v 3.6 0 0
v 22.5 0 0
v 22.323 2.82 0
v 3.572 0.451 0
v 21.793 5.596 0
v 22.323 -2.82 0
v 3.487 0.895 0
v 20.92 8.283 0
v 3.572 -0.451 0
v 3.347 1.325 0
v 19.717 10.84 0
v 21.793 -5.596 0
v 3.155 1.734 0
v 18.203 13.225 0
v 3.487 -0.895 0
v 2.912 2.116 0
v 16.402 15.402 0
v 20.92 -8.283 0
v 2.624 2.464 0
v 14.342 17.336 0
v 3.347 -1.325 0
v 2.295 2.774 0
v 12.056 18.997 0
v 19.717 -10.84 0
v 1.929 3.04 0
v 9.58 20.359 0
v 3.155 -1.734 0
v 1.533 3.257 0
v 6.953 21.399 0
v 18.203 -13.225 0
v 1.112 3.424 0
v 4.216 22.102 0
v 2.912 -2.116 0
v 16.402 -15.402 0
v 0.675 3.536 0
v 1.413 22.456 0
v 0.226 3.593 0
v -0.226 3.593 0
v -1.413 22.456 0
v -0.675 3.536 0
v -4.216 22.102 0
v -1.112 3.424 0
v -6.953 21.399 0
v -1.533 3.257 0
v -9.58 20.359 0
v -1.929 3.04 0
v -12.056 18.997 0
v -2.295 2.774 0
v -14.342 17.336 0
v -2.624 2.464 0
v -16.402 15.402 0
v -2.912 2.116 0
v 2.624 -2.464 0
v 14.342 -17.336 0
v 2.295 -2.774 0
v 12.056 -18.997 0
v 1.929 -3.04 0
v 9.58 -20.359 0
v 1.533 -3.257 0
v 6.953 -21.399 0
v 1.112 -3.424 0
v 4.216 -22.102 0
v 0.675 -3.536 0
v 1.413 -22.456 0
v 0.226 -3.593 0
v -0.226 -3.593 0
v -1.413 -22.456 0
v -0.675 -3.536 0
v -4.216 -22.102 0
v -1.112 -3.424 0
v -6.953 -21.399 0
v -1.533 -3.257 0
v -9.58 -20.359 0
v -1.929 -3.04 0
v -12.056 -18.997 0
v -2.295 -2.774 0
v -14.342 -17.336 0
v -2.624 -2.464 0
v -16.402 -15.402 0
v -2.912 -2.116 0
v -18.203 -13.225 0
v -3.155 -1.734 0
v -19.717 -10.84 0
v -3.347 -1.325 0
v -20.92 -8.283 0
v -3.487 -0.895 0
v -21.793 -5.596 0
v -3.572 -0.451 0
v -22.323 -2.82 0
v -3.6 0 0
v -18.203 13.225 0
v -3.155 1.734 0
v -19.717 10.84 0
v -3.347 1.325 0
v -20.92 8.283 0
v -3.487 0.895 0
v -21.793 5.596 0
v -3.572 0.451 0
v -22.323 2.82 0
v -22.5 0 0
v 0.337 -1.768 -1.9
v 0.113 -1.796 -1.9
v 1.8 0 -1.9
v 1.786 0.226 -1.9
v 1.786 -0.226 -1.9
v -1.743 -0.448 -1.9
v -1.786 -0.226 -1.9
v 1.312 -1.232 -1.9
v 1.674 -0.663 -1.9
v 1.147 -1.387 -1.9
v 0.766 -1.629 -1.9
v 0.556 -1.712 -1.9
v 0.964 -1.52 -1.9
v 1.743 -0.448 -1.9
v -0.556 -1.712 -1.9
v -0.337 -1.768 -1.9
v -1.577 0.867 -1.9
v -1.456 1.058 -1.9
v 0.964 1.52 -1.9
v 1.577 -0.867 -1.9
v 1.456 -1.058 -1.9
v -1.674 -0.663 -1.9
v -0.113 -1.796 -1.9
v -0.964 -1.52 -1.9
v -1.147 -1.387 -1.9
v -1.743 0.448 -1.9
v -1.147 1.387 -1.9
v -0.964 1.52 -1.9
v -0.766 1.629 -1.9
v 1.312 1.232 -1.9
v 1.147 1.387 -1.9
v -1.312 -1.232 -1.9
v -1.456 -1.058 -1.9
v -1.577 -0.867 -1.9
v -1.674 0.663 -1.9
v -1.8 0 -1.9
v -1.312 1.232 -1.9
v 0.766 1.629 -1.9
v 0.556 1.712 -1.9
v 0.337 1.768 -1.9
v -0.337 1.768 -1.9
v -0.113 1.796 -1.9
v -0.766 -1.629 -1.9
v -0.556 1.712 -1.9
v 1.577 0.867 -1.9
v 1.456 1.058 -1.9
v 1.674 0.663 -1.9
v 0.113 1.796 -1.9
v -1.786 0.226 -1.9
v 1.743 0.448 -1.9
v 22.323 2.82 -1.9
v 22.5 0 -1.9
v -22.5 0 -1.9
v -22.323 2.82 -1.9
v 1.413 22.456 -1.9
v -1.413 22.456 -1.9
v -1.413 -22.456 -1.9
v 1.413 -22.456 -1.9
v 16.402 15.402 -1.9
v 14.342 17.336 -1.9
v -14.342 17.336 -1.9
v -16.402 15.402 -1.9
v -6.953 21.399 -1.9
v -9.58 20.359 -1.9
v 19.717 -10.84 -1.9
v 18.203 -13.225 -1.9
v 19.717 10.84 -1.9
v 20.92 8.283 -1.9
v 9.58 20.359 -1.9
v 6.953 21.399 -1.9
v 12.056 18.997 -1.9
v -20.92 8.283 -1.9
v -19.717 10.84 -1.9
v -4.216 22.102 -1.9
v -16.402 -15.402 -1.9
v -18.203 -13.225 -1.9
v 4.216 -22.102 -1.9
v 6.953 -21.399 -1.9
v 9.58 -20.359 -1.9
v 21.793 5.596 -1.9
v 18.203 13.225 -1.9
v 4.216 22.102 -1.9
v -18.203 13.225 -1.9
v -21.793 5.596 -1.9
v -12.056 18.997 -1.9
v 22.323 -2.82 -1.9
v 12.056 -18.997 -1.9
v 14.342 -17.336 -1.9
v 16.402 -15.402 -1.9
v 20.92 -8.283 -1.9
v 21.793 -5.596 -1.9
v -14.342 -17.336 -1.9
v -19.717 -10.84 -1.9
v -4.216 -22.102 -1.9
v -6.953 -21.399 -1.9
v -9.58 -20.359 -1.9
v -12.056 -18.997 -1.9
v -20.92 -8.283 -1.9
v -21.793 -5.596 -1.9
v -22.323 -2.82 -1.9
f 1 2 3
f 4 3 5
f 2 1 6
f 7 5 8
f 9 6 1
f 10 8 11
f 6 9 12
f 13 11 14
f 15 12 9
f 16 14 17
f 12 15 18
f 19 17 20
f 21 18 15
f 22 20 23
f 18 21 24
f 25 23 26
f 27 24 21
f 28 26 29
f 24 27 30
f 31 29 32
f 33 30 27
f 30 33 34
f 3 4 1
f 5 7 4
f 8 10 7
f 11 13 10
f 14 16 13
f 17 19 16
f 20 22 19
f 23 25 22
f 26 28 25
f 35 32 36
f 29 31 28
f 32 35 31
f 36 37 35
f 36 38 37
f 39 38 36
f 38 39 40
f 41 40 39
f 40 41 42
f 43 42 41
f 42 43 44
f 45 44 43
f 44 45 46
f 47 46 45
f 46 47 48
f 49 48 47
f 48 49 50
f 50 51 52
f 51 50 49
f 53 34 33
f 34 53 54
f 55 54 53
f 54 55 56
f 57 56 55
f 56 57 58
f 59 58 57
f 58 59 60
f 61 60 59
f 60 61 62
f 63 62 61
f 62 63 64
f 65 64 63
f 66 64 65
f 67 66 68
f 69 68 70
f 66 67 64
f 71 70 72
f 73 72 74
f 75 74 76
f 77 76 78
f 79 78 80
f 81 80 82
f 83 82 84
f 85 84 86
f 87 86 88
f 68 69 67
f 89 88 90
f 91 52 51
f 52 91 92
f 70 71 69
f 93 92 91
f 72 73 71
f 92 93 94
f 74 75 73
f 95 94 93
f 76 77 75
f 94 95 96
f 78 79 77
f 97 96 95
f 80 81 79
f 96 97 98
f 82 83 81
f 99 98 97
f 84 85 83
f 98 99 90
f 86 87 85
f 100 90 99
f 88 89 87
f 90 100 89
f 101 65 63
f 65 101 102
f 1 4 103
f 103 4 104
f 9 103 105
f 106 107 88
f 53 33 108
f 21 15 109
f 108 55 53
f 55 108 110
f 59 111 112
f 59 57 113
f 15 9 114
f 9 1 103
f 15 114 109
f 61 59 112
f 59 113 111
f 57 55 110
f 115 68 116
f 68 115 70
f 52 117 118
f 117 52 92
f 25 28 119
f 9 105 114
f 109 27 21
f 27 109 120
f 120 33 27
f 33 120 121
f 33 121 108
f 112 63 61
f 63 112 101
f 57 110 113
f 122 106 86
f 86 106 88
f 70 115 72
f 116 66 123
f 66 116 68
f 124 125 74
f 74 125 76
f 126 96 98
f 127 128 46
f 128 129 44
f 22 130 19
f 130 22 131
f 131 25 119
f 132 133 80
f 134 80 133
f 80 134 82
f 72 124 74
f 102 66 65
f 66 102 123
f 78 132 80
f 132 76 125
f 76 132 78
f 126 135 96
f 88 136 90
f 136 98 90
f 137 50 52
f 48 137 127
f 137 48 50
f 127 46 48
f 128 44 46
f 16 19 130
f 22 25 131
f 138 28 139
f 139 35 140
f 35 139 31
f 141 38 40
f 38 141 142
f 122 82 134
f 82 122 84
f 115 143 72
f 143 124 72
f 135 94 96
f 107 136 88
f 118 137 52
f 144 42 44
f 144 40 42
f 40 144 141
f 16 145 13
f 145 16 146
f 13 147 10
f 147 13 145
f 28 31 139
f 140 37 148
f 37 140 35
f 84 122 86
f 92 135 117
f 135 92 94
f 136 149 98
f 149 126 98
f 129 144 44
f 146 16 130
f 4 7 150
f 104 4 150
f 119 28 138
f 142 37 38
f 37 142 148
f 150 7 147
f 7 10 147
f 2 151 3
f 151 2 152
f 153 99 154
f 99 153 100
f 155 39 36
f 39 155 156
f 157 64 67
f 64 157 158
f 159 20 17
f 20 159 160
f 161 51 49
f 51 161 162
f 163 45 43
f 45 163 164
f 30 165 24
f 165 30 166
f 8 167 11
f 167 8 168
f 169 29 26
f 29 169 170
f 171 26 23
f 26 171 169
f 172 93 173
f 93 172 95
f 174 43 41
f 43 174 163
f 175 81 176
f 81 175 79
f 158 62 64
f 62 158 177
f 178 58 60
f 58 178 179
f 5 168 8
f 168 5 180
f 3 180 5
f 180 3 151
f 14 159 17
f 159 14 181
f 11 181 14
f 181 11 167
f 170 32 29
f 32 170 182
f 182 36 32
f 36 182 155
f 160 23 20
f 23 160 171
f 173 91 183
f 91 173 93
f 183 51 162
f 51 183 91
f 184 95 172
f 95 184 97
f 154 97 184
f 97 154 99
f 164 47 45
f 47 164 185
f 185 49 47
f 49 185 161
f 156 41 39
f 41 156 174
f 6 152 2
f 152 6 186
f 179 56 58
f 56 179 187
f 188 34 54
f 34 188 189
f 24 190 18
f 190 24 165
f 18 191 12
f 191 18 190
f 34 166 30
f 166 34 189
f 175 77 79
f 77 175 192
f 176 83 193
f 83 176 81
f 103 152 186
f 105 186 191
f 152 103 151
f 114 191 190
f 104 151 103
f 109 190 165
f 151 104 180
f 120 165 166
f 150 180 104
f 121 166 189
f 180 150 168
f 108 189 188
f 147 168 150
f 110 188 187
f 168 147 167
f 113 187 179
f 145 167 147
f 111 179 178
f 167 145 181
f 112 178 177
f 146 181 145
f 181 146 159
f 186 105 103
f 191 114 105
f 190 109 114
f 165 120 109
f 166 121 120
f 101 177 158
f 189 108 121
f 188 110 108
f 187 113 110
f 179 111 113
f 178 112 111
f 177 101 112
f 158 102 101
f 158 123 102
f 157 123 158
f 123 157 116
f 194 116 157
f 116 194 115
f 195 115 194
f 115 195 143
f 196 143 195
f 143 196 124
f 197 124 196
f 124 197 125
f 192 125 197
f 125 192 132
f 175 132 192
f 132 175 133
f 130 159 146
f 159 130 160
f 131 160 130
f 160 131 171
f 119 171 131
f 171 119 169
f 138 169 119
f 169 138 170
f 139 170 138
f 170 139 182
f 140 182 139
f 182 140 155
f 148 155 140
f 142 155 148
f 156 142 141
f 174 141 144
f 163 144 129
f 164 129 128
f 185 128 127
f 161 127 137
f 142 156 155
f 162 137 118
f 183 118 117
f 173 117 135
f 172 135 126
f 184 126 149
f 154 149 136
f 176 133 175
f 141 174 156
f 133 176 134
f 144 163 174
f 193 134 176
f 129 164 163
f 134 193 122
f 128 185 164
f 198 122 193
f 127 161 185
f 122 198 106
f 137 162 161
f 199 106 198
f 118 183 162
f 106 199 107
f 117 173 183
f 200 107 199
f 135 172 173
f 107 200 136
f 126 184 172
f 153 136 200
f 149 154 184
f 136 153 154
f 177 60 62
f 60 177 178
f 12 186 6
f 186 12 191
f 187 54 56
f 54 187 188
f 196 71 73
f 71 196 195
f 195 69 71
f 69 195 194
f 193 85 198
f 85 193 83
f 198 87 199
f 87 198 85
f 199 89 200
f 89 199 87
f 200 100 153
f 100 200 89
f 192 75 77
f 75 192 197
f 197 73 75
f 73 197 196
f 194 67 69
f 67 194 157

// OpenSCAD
$fn = 50;


difference() {
	union() {
		translate(v = [0, 0, -1.9000000000]) {
			cylinder(h = 1.9000000000, r = 22.5000000000);
		}
	}
	union() {
		translate(v = [0, 0, 0]) {
			rotate(a = [0, 0, 0]) {
				difference() {
					union() {
						translate(v = [0, 0, -4.9000000000]) {
							cylinder(h = 4.9000000000, r = 1.5000000000);
						}
						translate(v = [0, 0, -1.9000000000]) {
							cylinder(h = 1.9000000000, r1 = 1.8000000000, r2 = 3.6000000000);
						}
						translate(v = [0, 0, -4.9000000000]) {
							cylinder(h = 4.9000000000, r = 1.8000000000);
						}
						translate(v = [0, 0, -4.9000000000]) {
							cylinder(h = 4.9000000000, r = 1.5000000000);
						}
					}
					union();
				}
			}
		}
	}
}
